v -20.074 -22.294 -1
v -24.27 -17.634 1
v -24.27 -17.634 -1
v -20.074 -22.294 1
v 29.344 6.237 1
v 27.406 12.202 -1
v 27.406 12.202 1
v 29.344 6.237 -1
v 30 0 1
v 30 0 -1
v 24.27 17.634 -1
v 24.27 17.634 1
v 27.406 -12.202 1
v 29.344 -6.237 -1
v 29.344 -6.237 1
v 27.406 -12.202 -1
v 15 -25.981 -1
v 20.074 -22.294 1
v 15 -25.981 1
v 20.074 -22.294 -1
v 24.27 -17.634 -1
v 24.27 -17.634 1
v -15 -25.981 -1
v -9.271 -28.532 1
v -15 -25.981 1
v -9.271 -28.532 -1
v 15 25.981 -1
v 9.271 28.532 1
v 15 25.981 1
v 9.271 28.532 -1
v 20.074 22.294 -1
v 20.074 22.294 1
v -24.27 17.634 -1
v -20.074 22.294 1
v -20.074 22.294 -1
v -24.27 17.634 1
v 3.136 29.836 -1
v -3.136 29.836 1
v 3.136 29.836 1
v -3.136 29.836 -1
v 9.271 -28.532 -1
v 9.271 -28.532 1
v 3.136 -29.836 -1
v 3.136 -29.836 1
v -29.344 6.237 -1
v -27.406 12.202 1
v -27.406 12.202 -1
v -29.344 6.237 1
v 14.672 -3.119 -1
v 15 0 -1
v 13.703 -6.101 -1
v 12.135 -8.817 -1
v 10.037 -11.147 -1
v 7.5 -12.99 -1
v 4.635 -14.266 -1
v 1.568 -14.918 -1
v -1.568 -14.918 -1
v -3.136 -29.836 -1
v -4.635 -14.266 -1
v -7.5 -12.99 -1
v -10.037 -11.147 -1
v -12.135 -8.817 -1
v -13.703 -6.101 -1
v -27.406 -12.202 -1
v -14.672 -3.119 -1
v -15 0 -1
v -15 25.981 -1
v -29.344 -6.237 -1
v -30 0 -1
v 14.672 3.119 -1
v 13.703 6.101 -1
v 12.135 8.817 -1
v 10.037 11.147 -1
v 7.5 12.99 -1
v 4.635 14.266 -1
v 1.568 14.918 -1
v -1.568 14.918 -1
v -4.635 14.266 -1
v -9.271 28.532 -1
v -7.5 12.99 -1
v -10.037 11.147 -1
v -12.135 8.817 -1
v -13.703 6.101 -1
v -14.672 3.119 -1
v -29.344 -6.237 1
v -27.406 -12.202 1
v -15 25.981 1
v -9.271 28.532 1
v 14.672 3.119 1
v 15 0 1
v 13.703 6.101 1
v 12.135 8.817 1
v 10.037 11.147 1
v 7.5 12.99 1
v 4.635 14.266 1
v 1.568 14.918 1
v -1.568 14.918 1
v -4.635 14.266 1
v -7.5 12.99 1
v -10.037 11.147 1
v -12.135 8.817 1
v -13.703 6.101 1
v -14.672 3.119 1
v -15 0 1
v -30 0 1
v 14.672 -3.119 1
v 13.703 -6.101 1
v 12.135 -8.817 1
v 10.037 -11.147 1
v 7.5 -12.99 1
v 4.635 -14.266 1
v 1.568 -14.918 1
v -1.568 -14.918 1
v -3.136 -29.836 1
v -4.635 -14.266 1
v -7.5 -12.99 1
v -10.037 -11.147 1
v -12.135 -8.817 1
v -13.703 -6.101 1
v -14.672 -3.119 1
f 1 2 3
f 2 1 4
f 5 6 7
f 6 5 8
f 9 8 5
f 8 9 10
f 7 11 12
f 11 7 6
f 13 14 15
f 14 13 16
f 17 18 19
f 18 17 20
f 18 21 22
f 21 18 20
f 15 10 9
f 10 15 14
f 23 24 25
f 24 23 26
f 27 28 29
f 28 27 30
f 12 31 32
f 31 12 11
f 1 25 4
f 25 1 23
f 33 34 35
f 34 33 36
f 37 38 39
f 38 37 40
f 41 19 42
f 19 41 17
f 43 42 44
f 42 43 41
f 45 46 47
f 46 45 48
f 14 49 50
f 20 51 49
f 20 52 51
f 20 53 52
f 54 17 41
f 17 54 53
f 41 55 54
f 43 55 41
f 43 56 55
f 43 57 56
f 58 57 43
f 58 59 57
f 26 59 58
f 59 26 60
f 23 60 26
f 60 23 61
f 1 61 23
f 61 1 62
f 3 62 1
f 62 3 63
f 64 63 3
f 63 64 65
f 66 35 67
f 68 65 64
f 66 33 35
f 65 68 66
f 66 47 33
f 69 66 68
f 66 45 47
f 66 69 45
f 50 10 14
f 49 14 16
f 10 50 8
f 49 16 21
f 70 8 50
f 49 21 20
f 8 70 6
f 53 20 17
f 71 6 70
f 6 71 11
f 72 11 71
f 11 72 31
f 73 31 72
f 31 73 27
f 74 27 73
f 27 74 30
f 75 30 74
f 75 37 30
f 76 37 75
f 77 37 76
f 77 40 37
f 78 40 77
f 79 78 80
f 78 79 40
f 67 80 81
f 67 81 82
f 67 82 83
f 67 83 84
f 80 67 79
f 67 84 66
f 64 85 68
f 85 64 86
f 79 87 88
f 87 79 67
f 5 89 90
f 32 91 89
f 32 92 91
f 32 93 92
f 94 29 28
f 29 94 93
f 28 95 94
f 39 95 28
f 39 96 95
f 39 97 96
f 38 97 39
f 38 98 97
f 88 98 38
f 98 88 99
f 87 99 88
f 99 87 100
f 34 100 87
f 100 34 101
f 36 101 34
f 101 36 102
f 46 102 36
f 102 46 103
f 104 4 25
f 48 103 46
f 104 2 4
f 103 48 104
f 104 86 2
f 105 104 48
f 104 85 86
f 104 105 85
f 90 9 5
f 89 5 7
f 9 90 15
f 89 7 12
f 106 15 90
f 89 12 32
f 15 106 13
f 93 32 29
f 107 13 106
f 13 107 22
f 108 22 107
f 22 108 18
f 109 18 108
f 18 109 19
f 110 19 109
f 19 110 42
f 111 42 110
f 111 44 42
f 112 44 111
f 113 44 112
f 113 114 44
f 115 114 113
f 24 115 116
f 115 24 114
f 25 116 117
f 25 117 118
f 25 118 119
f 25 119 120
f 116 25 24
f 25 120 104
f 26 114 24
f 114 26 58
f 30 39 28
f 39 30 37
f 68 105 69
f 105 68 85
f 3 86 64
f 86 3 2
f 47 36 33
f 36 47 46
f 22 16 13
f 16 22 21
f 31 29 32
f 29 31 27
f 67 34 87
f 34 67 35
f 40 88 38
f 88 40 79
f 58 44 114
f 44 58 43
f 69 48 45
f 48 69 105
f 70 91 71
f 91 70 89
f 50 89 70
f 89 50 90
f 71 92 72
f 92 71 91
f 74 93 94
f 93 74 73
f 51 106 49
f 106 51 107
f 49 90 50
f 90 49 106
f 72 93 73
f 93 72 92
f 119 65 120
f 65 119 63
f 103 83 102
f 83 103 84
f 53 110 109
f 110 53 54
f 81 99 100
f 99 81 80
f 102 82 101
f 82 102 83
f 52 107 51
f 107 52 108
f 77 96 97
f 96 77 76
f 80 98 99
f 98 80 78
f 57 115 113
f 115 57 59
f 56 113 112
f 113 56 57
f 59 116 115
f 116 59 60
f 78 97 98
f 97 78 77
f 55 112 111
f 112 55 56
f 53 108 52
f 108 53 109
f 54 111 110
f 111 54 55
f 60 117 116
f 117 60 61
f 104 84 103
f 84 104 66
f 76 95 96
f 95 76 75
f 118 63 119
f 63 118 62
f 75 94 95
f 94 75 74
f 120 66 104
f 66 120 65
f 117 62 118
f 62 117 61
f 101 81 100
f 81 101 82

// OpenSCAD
// Generate a spacer_ring component based on the description
module spacer_ring() {
    difference() {
        // Create the main outer ring
        cylinder(h=2, r=30, center=true);
        // Cut out the hollow center
        cylinder(h=3, r=15, center=true);
    }
}

// Call the spacer_ring module
spacer_ring();
